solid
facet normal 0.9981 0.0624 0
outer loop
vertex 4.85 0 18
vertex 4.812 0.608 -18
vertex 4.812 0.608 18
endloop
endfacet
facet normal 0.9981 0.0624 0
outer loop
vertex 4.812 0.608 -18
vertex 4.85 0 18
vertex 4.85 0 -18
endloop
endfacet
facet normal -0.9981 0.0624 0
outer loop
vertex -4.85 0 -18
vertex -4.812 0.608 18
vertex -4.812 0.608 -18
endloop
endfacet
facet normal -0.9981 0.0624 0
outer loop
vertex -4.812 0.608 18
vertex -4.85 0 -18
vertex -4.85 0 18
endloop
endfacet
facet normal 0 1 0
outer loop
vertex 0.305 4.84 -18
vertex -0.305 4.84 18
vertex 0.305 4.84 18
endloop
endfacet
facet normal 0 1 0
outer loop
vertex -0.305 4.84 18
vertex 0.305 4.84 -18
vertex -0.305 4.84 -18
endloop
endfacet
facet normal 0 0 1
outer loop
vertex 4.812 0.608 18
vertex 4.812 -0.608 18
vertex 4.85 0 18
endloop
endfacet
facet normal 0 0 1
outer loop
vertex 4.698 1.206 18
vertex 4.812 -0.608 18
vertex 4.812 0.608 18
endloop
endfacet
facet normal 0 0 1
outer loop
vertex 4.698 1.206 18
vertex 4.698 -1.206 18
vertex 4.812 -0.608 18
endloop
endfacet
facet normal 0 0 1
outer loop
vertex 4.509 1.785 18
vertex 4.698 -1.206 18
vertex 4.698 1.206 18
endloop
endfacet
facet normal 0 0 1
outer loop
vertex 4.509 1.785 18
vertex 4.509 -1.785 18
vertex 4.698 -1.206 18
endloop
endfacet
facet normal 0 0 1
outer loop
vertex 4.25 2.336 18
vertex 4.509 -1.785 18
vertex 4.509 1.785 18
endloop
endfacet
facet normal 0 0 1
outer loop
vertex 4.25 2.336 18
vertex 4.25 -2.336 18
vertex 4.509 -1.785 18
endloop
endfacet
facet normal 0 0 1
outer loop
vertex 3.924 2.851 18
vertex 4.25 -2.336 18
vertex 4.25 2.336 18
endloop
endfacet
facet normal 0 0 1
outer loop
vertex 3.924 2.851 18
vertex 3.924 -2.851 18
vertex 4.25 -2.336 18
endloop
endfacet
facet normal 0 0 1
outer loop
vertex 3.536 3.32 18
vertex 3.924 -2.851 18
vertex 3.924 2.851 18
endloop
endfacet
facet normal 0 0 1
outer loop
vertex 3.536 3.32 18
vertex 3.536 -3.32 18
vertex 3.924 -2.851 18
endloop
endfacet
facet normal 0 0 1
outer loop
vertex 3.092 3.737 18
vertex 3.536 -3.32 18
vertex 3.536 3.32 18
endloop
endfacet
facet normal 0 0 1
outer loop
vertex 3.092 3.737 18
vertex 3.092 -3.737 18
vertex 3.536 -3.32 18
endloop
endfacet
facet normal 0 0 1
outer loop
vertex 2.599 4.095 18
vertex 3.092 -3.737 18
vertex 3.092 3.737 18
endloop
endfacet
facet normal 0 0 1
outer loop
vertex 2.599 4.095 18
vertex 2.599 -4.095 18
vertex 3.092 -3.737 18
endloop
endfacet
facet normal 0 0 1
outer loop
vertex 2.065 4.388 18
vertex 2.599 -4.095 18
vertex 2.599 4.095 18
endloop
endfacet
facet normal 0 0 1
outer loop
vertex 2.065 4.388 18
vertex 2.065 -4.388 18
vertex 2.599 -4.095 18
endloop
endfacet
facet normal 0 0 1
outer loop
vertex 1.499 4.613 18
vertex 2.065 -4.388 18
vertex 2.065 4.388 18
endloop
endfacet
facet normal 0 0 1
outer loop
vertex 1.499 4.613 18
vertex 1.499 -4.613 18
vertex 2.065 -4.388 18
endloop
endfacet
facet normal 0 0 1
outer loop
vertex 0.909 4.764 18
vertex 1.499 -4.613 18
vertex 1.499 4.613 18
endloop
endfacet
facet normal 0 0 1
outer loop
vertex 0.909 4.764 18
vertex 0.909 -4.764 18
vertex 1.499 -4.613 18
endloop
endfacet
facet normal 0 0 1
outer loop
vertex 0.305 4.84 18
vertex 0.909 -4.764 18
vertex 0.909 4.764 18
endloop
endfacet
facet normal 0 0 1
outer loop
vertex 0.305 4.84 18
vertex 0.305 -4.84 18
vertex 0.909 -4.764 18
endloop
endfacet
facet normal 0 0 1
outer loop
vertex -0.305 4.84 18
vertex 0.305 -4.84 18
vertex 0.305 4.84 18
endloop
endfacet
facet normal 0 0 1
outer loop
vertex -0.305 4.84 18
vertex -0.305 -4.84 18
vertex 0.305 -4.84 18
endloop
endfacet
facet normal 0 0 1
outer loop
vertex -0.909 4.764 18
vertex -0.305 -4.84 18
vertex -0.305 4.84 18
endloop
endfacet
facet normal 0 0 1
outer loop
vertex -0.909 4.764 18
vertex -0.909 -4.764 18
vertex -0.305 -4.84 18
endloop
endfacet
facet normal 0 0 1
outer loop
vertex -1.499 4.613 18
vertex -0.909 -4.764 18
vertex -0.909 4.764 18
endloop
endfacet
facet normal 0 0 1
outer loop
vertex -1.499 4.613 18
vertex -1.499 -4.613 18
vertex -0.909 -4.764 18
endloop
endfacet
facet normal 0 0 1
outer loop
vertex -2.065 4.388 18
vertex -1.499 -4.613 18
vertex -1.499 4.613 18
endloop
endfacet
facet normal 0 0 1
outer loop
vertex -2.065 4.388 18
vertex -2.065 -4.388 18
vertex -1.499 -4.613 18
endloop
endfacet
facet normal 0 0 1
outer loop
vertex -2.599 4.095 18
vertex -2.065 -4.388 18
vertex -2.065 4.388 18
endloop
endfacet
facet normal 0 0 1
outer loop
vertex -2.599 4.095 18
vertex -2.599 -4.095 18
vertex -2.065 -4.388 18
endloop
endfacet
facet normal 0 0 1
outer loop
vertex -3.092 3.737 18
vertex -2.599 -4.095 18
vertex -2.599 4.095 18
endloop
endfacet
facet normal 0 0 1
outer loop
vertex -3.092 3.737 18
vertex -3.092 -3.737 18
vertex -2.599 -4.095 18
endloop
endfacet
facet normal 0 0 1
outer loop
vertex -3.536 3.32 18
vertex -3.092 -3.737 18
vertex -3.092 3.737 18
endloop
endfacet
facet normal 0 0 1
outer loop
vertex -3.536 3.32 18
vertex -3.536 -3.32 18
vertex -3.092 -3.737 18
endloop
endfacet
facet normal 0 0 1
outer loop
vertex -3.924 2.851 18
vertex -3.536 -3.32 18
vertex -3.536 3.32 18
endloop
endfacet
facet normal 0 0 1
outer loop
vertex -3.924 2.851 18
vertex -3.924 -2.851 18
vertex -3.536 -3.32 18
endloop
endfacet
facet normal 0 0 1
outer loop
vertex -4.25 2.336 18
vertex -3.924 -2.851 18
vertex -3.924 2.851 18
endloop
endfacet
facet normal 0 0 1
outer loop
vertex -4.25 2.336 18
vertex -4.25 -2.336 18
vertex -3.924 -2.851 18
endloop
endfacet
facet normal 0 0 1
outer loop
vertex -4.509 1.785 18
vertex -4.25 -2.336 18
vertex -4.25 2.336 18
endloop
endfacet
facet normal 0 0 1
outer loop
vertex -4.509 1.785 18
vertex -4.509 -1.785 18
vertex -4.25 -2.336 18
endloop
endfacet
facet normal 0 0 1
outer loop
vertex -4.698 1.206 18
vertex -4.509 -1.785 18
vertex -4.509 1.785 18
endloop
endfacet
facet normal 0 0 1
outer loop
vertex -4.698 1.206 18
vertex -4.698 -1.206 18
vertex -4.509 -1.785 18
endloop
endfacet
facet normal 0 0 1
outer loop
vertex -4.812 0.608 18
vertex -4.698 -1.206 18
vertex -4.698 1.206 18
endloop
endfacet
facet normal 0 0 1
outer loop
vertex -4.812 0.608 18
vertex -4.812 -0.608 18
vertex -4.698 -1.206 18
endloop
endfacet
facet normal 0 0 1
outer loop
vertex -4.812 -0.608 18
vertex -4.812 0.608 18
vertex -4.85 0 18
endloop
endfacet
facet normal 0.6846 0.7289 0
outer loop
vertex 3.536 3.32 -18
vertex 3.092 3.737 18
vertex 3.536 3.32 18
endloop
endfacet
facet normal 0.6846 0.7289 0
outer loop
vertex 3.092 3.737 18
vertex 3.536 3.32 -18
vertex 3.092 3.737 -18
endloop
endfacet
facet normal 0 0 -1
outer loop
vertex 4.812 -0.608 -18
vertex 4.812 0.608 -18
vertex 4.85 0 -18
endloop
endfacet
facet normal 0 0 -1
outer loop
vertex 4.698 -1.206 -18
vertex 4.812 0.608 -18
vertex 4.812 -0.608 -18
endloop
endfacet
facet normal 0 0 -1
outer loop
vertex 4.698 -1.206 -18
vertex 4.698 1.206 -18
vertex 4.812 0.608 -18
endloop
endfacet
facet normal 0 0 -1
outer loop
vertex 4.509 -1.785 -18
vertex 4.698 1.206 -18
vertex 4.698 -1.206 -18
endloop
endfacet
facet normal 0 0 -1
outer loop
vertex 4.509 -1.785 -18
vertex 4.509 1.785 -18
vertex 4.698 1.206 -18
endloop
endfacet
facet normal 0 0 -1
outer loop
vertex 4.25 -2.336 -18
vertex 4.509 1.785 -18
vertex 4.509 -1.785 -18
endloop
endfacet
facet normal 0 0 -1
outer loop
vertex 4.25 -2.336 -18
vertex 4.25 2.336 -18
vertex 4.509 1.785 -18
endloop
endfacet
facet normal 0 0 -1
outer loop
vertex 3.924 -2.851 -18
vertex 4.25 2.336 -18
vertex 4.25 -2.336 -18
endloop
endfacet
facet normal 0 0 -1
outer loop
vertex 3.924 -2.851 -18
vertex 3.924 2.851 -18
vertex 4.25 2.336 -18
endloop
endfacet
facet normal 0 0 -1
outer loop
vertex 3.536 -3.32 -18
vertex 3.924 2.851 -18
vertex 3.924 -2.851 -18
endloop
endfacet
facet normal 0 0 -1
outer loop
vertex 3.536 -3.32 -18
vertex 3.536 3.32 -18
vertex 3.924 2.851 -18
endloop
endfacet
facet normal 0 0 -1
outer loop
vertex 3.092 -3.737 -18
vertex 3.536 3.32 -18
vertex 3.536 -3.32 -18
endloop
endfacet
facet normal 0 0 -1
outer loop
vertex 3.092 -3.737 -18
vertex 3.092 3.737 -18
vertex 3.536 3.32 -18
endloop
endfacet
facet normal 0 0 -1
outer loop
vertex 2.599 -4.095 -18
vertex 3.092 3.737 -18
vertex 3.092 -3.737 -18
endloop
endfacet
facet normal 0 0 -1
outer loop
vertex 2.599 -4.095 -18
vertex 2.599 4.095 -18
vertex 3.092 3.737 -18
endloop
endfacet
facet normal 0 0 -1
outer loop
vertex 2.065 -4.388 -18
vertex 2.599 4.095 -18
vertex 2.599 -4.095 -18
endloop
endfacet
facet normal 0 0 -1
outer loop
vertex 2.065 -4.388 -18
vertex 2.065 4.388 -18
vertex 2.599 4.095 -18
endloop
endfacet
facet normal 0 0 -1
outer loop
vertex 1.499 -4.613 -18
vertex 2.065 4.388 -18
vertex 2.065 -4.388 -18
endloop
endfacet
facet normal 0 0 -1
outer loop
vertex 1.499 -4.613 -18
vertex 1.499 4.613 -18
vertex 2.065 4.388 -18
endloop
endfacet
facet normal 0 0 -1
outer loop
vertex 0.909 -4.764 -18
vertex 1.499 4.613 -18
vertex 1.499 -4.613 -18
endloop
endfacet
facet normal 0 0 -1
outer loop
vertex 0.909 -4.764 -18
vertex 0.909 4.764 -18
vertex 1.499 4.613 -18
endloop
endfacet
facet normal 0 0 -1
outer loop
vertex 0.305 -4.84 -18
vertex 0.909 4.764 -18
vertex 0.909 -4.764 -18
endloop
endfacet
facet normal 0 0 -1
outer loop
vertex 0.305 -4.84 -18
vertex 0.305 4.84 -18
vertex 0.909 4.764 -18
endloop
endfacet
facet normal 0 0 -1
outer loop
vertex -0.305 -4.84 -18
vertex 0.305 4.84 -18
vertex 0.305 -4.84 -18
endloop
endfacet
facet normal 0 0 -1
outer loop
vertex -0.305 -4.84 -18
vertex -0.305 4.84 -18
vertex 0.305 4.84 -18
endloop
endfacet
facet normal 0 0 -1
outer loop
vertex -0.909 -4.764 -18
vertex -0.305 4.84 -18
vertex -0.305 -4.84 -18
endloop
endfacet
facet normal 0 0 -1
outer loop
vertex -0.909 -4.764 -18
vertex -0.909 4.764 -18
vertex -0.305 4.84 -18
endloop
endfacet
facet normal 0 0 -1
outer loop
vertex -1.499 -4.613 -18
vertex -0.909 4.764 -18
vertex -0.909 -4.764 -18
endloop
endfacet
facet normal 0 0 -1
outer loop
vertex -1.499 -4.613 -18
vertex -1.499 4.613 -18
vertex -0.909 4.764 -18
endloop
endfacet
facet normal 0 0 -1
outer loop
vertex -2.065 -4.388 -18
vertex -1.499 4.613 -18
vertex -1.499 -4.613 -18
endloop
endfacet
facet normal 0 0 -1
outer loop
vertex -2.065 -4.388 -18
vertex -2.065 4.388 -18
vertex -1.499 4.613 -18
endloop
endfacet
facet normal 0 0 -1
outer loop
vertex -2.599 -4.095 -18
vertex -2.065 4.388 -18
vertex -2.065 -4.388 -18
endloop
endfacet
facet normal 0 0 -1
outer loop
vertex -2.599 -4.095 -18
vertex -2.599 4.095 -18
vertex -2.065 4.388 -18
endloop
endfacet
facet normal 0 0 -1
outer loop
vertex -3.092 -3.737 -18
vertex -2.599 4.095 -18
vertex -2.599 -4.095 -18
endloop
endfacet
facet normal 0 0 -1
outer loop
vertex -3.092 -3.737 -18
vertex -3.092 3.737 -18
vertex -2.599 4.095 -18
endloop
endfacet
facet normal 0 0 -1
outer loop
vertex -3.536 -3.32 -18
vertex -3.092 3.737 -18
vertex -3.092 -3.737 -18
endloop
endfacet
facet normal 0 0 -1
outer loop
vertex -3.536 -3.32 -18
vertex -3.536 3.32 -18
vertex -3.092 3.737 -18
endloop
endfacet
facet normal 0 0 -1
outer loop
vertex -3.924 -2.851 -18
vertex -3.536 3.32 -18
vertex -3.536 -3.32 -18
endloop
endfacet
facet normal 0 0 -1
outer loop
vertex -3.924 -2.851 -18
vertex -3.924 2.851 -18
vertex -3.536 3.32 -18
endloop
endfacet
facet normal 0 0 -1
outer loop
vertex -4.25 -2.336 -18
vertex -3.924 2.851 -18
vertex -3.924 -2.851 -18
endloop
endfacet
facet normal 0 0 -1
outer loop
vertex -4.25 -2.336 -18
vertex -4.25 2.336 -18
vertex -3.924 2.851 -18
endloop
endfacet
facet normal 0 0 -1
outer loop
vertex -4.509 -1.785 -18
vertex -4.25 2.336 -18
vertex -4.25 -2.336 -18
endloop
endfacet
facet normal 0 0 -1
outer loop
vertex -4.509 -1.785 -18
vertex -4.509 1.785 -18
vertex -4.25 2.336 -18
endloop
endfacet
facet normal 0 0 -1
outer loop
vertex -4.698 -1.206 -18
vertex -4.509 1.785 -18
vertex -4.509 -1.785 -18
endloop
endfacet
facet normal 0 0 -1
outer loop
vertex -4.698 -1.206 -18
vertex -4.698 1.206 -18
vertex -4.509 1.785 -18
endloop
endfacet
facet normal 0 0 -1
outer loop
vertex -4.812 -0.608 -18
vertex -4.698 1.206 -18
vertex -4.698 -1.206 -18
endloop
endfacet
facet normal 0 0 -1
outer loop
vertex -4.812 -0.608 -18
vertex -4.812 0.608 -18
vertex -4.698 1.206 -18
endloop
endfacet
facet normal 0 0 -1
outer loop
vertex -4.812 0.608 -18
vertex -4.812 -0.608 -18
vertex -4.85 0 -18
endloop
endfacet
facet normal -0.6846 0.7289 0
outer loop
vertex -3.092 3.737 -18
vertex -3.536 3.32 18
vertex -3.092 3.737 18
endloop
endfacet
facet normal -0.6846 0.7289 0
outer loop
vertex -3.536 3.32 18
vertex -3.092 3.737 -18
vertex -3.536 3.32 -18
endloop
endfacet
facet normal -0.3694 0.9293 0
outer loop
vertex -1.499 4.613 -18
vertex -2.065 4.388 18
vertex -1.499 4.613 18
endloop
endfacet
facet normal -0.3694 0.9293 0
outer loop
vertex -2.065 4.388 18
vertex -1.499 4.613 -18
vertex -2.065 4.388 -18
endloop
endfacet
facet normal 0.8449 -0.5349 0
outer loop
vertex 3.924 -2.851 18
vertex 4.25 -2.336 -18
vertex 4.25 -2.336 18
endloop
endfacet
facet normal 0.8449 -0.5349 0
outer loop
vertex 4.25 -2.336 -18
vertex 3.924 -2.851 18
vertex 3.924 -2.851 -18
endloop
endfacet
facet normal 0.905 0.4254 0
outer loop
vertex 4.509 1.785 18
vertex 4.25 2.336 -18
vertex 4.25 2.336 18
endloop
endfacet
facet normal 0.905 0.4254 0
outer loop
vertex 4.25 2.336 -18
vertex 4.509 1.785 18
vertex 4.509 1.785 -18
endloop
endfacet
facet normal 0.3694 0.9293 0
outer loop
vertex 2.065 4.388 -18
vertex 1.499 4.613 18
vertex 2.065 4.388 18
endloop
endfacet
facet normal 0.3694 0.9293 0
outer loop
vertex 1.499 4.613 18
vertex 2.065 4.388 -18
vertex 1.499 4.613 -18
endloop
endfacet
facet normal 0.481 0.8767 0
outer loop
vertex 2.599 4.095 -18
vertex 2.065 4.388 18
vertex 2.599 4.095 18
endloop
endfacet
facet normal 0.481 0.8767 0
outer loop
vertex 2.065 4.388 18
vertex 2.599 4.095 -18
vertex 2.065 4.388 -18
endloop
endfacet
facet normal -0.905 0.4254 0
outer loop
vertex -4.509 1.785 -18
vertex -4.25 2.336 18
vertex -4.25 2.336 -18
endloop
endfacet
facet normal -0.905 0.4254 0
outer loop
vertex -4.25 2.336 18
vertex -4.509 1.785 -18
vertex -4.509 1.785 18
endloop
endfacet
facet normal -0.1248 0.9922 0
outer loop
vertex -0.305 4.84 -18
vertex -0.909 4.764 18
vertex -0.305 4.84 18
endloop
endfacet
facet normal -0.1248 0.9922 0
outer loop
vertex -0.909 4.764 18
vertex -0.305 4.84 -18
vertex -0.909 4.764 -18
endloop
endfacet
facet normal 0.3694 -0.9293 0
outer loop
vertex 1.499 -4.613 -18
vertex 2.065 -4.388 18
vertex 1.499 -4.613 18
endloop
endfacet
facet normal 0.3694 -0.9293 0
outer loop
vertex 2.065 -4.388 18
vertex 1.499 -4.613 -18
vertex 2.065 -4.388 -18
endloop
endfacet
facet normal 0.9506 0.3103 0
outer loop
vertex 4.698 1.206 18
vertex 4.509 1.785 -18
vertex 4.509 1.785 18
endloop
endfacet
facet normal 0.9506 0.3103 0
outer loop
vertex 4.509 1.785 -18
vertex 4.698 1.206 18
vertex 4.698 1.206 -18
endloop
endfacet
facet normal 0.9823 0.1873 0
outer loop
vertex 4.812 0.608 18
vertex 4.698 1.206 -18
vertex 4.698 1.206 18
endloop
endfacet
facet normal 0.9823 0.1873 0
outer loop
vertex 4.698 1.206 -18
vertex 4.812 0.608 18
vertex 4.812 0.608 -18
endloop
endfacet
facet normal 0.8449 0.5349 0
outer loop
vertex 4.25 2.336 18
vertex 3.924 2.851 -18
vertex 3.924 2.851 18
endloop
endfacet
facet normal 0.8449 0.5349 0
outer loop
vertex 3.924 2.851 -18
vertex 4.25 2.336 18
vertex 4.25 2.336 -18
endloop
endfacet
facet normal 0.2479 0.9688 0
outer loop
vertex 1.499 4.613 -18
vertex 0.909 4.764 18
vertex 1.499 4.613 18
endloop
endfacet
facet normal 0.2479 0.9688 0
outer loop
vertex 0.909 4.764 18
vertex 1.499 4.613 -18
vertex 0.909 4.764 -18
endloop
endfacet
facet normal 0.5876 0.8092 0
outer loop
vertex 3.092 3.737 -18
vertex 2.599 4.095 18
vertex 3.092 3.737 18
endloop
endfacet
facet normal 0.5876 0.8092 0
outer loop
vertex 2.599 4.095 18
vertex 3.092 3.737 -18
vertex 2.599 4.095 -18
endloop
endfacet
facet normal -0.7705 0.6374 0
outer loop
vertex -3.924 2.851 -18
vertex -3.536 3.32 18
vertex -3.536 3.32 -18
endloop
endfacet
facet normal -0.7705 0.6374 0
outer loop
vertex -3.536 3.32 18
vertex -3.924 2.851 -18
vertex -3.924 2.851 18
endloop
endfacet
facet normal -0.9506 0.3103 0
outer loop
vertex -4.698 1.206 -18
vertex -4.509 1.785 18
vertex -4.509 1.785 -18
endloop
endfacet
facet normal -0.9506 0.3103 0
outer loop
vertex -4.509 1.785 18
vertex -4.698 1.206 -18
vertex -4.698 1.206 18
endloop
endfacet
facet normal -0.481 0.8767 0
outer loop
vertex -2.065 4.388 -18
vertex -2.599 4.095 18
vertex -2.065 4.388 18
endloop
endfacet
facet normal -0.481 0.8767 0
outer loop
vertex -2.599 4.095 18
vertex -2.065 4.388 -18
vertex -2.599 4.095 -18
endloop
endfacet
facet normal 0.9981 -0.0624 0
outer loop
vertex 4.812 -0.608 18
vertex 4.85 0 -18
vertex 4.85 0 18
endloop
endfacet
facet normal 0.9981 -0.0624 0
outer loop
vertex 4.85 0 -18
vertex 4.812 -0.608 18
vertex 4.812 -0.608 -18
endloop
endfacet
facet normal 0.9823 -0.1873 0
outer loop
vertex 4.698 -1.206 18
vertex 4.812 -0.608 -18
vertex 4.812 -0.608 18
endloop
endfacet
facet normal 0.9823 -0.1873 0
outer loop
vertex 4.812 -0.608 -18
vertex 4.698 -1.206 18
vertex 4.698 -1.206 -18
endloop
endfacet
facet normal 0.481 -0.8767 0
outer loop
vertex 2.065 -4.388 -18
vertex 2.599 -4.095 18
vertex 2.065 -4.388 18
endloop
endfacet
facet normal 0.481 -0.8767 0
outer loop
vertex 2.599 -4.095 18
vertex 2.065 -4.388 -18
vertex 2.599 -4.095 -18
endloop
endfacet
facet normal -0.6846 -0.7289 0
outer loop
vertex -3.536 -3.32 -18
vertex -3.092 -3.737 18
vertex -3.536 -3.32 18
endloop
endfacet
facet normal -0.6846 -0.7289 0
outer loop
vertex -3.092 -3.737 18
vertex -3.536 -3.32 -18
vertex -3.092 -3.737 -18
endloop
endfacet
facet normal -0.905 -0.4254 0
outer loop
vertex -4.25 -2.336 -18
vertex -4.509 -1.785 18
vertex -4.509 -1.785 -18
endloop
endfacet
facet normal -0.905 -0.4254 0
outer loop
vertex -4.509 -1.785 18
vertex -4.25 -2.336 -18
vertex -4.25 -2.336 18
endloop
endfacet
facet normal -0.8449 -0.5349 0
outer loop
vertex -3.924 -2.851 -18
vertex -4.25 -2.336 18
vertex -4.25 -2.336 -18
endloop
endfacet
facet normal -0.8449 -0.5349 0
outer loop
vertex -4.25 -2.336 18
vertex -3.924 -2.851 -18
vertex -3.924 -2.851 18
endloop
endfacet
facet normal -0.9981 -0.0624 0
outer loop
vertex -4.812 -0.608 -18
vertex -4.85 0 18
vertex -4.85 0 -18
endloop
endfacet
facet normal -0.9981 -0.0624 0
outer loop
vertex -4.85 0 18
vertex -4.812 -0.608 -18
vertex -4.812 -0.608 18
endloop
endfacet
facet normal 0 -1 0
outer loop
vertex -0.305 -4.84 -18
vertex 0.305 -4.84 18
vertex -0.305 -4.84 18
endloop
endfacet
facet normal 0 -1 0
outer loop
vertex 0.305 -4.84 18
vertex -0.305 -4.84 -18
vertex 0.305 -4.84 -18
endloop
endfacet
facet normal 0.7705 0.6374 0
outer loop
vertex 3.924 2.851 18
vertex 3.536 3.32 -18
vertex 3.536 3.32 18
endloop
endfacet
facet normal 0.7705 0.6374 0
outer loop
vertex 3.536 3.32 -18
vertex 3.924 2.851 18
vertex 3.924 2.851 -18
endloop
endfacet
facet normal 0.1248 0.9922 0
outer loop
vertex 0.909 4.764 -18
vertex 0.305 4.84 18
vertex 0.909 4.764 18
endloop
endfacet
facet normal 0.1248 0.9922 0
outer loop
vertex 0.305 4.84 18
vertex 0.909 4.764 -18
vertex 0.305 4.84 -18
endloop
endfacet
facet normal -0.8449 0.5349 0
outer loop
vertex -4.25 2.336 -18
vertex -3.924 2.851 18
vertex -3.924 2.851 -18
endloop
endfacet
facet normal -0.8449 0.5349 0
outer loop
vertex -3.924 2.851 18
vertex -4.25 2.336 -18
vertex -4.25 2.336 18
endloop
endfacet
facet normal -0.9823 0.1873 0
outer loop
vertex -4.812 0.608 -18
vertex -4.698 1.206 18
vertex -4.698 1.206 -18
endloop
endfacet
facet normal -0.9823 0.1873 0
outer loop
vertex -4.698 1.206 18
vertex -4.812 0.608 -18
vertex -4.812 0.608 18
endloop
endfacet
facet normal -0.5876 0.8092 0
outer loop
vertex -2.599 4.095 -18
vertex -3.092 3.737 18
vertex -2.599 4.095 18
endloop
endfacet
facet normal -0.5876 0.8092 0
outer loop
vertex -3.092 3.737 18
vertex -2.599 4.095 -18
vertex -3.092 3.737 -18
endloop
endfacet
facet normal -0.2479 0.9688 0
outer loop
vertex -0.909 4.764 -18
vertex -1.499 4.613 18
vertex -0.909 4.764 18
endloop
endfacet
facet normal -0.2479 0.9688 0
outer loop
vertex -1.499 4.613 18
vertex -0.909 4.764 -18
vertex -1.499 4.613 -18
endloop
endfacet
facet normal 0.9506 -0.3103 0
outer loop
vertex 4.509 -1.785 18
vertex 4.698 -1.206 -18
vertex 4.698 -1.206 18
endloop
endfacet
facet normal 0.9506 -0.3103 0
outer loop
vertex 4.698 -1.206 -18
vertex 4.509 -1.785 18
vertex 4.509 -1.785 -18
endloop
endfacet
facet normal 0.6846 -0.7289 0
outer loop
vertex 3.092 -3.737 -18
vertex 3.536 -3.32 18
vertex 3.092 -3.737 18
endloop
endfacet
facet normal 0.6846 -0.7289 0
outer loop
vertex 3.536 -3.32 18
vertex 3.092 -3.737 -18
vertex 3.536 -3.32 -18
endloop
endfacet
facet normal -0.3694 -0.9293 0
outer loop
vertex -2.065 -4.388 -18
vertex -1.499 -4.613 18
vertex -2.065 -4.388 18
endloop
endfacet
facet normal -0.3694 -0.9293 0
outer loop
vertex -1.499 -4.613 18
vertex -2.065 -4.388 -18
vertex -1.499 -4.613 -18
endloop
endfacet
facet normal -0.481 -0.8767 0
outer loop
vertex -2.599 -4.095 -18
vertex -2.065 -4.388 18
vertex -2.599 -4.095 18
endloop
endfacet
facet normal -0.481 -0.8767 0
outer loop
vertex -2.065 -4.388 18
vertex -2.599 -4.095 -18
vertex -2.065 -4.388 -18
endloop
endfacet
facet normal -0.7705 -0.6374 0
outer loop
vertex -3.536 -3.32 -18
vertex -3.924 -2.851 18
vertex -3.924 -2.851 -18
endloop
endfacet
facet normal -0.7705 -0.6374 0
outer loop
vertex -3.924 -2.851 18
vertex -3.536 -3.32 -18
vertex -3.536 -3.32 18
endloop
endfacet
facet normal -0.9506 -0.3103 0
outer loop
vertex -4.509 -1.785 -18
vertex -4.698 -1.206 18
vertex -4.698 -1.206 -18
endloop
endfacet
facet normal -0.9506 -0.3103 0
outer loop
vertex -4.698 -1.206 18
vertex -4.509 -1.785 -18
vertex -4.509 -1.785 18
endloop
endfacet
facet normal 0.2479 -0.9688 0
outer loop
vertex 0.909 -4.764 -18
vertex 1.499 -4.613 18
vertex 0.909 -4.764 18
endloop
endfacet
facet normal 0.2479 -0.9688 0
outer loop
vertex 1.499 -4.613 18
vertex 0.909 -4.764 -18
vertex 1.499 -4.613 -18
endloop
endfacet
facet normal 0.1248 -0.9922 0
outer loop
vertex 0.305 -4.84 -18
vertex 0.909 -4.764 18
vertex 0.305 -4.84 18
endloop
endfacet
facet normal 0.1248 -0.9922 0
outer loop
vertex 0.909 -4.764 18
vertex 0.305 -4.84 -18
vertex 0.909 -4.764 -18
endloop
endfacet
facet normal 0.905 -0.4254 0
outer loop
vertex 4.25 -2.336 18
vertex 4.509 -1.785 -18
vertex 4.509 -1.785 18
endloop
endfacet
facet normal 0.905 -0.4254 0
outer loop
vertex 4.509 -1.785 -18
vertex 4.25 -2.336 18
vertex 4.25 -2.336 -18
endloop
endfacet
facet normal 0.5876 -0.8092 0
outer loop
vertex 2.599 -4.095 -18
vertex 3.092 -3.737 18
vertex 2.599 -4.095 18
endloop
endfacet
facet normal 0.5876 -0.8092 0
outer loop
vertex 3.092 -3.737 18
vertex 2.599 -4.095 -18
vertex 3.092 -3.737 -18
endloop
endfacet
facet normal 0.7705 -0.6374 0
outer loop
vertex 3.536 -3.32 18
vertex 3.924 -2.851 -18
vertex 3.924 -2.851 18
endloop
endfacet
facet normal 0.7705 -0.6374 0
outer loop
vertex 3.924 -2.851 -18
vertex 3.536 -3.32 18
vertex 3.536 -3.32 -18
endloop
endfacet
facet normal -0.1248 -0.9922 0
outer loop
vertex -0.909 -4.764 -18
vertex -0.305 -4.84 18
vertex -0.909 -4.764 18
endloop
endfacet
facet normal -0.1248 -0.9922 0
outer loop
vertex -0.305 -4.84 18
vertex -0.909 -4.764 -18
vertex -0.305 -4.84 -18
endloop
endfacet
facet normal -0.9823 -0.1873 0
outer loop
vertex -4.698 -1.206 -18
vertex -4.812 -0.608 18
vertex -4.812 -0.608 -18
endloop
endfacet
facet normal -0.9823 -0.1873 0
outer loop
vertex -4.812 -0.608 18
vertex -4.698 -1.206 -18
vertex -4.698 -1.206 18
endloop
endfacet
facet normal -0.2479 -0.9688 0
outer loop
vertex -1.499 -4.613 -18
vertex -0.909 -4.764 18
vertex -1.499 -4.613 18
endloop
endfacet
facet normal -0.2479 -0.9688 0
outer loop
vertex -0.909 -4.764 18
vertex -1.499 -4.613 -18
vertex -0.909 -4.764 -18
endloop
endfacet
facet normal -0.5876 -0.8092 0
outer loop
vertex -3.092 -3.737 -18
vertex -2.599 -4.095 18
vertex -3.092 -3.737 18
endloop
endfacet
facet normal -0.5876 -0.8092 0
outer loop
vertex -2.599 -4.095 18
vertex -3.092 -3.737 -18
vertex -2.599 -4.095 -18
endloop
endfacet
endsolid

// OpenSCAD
$fn = 50;


difference() {
	union() {
		translate(v = [0, 0, -18.0000000000]) {
			cylinder(h = 36, r = 4.8500000000);
		}
	}
	union() {
		translate(v = [0, 0, -100.0000000000]) {
			cylinder(h = 200, r = 0);
		}
	}
}
